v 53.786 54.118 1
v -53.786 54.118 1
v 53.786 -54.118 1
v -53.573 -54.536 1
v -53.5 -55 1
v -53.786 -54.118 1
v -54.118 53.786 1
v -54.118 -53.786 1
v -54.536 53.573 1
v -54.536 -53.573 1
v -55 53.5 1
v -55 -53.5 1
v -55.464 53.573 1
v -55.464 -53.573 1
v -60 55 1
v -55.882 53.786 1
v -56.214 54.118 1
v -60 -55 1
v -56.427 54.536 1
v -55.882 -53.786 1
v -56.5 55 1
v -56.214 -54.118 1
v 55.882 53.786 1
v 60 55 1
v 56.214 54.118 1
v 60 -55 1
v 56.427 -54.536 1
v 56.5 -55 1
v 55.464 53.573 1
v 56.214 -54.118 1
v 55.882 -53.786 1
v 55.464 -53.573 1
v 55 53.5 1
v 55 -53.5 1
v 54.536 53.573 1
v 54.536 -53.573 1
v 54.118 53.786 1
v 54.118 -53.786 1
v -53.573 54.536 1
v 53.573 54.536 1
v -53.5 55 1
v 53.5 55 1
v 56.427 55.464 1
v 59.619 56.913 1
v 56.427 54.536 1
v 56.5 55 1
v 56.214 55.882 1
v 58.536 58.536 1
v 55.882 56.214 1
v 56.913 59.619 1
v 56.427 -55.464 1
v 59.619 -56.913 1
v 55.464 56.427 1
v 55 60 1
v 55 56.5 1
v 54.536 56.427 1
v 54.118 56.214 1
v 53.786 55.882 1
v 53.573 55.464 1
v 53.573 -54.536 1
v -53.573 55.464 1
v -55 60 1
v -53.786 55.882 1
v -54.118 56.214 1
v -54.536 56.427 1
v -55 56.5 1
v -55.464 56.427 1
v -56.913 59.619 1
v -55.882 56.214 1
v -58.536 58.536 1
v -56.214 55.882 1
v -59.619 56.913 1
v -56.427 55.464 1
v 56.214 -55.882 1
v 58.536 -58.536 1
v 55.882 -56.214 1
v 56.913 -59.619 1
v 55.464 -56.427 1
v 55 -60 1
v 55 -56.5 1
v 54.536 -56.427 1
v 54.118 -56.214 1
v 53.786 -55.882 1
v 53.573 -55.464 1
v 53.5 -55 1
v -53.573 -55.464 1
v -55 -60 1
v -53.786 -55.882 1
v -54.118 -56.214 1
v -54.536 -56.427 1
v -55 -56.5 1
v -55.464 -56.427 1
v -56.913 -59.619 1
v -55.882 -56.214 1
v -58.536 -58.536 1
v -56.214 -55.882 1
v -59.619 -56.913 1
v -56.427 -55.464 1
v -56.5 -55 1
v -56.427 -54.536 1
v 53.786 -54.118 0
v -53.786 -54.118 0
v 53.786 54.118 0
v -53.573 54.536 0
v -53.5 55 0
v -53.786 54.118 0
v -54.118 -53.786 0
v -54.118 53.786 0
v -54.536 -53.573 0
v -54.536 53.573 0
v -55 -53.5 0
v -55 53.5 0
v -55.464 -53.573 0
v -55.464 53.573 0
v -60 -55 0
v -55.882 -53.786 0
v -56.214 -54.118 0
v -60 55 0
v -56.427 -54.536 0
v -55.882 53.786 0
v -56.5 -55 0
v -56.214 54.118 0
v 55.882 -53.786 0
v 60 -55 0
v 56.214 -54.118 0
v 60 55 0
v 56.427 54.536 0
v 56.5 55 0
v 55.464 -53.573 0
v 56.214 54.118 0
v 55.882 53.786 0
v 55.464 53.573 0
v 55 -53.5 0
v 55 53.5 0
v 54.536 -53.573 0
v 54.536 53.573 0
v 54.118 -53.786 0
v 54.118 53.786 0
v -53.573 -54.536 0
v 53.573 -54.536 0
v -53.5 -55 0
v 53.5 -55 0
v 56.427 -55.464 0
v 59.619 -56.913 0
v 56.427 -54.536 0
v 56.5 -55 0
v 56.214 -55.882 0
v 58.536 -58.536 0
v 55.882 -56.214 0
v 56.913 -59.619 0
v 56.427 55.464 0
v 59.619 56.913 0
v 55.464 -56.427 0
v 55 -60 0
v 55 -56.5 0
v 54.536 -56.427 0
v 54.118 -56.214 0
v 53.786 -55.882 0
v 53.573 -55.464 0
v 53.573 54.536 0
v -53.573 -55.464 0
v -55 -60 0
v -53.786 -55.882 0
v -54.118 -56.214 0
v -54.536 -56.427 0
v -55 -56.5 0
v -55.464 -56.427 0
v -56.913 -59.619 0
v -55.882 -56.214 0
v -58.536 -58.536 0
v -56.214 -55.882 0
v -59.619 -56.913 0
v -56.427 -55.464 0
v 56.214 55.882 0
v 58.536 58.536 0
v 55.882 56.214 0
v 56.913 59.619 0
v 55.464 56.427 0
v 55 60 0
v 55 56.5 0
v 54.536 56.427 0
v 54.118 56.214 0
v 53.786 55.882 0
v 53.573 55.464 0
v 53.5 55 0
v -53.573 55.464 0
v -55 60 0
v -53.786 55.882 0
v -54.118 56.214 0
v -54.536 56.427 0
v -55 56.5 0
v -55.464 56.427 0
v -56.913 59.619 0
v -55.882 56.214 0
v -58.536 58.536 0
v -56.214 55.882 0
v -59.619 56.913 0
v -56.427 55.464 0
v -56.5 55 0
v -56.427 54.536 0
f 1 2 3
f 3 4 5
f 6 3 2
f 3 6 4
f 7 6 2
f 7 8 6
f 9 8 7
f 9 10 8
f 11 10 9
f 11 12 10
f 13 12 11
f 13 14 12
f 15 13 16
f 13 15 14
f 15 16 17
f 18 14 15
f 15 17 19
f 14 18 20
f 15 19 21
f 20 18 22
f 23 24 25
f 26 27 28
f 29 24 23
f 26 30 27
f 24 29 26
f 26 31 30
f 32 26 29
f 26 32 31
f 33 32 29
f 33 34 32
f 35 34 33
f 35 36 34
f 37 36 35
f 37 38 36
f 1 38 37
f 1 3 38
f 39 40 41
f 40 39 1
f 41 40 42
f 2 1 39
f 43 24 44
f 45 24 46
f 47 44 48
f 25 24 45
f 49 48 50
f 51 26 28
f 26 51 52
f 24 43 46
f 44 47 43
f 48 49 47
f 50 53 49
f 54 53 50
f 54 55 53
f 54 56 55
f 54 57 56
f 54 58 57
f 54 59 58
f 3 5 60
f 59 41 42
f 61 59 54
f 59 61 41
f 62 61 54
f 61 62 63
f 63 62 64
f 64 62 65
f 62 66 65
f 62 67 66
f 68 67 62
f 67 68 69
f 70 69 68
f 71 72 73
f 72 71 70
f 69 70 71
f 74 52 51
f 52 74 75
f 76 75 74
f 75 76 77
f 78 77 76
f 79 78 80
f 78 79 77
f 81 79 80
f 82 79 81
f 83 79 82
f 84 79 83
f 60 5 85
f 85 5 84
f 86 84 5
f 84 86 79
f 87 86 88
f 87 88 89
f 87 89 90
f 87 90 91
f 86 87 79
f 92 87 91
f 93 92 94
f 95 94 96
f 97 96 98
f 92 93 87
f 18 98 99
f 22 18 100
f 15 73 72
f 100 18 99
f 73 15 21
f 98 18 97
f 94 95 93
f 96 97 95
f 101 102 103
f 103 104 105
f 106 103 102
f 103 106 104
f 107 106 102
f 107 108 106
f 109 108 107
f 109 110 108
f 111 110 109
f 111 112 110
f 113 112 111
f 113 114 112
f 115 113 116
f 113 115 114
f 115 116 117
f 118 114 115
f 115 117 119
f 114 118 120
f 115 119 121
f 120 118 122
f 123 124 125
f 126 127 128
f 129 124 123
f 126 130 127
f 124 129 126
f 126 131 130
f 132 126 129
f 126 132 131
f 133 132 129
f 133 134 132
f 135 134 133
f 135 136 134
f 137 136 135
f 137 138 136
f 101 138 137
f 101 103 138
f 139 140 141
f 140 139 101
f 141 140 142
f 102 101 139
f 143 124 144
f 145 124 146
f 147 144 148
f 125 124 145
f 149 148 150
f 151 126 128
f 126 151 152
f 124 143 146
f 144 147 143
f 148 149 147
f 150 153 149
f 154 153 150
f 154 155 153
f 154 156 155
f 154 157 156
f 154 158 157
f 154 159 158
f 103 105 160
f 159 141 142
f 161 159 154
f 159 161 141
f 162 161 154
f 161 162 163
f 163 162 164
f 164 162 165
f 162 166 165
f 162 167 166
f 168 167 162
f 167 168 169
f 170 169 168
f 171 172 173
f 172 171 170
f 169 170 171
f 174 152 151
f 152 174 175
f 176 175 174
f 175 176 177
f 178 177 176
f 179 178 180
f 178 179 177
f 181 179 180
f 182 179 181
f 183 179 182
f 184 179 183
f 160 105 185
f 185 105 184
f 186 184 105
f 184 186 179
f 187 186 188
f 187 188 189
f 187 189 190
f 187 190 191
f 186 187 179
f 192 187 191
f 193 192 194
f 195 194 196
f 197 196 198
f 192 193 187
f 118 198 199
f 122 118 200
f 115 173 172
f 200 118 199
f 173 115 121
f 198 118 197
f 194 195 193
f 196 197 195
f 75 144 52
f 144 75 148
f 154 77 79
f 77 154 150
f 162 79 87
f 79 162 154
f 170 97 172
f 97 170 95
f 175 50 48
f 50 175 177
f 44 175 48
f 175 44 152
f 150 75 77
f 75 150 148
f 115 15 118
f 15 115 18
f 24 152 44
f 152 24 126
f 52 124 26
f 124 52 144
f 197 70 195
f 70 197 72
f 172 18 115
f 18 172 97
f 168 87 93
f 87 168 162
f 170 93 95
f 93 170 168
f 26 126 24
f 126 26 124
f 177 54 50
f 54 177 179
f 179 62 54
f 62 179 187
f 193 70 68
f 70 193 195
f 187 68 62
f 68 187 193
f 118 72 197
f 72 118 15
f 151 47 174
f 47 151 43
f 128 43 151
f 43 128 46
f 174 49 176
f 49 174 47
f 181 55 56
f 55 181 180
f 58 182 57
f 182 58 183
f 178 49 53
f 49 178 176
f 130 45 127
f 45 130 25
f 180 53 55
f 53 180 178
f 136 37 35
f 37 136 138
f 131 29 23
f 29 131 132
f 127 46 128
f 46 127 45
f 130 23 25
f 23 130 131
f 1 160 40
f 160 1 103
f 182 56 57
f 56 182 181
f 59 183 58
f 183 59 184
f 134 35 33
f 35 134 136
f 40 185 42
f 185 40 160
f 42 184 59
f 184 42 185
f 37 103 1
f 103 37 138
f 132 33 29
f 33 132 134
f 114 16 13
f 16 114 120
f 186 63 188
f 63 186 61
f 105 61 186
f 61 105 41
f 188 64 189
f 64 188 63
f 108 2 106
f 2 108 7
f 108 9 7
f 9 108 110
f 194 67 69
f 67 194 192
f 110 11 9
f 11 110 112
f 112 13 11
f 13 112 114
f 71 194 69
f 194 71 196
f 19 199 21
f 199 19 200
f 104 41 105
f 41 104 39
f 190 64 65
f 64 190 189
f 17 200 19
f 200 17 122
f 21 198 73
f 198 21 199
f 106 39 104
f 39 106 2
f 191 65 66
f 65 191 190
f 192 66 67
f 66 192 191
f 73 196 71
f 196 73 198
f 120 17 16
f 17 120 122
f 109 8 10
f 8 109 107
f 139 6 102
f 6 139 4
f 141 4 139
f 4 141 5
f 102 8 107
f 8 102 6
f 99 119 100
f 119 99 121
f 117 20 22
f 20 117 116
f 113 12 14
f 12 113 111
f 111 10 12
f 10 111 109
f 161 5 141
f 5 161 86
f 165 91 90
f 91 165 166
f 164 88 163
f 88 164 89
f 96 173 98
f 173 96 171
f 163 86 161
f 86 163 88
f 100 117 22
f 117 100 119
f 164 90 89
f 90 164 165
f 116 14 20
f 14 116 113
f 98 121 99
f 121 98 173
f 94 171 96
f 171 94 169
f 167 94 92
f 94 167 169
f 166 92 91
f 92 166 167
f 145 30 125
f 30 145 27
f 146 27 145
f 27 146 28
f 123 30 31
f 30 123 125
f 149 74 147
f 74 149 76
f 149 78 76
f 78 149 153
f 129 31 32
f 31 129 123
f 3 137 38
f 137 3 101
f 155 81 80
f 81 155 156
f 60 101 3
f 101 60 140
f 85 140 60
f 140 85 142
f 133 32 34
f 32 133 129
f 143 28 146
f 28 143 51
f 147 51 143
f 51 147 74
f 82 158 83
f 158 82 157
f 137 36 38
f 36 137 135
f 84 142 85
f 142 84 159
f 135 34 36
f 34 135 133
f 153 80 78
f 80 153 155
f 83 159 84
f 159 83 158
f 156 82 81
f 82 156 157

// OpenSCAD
// file: flight_controller_vert_screw_holes.scad
module flight_controller_vert_screw_holes(hole_x, hole_y, bore_diameter, height, fn) {
    translate([hole_x/2, hole_y/2, 0])
        cylinder(d=bore_diameter, h=height, $fn=fn);
    
    translate([-hole_x/2, hole_y/2, 0])
        cylinder(d=bore_diameter, h=height, $fn=fn);
    
    translate([-hole_x/2, -hole_y/2, 0])
        cylinder(d=bore_diameter, h=height, $fn=fn);
    
    translate([hole_x/2, -hole_y/2, 0])
        cylinder(d=bore_diameter, h=height, $fn=fn);
}
// file: flight_controller_face_panel_base.scad
use <./flight_controller_vert_screw_holes.scad>;

module flight_controller_face_panel_base(hole_x, hole_y, post_diameter, bore_diameter, case_floor_thickness, z_pos, fn) {
    difference() {
        hull() {
            translate([hole_x/2, hole_y/2, 0])
                cylinder(d=post_diameter, h=case_floor_thickness, $fn=fn);
            
            translate([-hole_x/2, hole_y/2, 0])
                cylinder(d=post_diameter, h=case_floor_thickness, $fn=fn);
            
            translate([-hole_x/2, -hole_y/2, 0])
                cylinder(d=post_diameter, h=case_floor_thickness, $fn=fn);
            
            translate([hole_x/2, -hole_y/2, 0])
                cylinder(d=post_diameter, h=case_floor_thickness, $fn=fn);
        }
        flight_controller_vert_screw_holes(hole_x, hole_y, bore_diameter, case_floor_thickness, fn);      
    }
}
// file: ../params.scad
function ducted_motor_mount_params() = [
    ["mounting_pin_diameter", 3], // 3mm metal screw
    ["mounting_block_height", 7], // mounting pin block hieght, through-hole length
    ["mounting_block_width", 10], // mounting pin block square width
    ["motor_mount_hole_space_3800kv", 12], // distance between adjacent holes in 3800kV motor
    ["mounting_arm_pin_to_motor_length", 58], // distance from motor center to mounting pin center
    ["shroud_height", 43.5], // case_z - 1.5
    ["shroud_radius", 51], // shroud radius, inner diameter, bottom edge
    ["counter_sink_depth", 2],
    ["fn", 60],
];  


function flight_controller_box_params() = [
    ["hole_x", 110],
    ["hole_y", 110],
    ["post_diameter", 10],
    ["bore_diameter", 3],
    ["case_z", 45],
    ["case_floor_thickness", 3],
    ["case_wall_thickness", 12],
    ["case_wall_height", 10],
    ["motor_mount_width", 10],
    ["motor_mount_height", 3],
    ["fn", 20],
];

// usage: find(params, "hole_x");
function find(h,k)= h[search([k], h, 1)[0]][1];
// main file
use <../params.scad>;
use <./flight_controller_face_panel_base.scad>;
use <./flight_controller_vert_screw_holes.scad>;

module flight_controller_top_panel(hole_x, hole_y, post_diameter, bore_diameter, case_floor, fn) {
    difference(){
        flight_controller_face_panel_base(hole_x, hole_y, post_diameter, bore_diameter, case_floor, fn);
        flight_controller_vert_screw_holes(hole_x, hole_y, bore_diameter, case_floor, fn);
    };
}

module flight_controller_top_panel_part() {
    params = flight_controller_box_params();
    hole_x = find(params, "hole_x");
    hole_y = find(params, "hole_y");
    post_diameter = find(params, "post_diameter");
    bore_diameter = find(params, "bore_diameter");
    case_floor = find(params, "case_floor");
    fn = find(params, "fn");
    flight_controller_top_panel(hole_x, hole_y, post_diameter, bore_diameter, case_floor, fn);
}

flight_controller_top_panel_part();
